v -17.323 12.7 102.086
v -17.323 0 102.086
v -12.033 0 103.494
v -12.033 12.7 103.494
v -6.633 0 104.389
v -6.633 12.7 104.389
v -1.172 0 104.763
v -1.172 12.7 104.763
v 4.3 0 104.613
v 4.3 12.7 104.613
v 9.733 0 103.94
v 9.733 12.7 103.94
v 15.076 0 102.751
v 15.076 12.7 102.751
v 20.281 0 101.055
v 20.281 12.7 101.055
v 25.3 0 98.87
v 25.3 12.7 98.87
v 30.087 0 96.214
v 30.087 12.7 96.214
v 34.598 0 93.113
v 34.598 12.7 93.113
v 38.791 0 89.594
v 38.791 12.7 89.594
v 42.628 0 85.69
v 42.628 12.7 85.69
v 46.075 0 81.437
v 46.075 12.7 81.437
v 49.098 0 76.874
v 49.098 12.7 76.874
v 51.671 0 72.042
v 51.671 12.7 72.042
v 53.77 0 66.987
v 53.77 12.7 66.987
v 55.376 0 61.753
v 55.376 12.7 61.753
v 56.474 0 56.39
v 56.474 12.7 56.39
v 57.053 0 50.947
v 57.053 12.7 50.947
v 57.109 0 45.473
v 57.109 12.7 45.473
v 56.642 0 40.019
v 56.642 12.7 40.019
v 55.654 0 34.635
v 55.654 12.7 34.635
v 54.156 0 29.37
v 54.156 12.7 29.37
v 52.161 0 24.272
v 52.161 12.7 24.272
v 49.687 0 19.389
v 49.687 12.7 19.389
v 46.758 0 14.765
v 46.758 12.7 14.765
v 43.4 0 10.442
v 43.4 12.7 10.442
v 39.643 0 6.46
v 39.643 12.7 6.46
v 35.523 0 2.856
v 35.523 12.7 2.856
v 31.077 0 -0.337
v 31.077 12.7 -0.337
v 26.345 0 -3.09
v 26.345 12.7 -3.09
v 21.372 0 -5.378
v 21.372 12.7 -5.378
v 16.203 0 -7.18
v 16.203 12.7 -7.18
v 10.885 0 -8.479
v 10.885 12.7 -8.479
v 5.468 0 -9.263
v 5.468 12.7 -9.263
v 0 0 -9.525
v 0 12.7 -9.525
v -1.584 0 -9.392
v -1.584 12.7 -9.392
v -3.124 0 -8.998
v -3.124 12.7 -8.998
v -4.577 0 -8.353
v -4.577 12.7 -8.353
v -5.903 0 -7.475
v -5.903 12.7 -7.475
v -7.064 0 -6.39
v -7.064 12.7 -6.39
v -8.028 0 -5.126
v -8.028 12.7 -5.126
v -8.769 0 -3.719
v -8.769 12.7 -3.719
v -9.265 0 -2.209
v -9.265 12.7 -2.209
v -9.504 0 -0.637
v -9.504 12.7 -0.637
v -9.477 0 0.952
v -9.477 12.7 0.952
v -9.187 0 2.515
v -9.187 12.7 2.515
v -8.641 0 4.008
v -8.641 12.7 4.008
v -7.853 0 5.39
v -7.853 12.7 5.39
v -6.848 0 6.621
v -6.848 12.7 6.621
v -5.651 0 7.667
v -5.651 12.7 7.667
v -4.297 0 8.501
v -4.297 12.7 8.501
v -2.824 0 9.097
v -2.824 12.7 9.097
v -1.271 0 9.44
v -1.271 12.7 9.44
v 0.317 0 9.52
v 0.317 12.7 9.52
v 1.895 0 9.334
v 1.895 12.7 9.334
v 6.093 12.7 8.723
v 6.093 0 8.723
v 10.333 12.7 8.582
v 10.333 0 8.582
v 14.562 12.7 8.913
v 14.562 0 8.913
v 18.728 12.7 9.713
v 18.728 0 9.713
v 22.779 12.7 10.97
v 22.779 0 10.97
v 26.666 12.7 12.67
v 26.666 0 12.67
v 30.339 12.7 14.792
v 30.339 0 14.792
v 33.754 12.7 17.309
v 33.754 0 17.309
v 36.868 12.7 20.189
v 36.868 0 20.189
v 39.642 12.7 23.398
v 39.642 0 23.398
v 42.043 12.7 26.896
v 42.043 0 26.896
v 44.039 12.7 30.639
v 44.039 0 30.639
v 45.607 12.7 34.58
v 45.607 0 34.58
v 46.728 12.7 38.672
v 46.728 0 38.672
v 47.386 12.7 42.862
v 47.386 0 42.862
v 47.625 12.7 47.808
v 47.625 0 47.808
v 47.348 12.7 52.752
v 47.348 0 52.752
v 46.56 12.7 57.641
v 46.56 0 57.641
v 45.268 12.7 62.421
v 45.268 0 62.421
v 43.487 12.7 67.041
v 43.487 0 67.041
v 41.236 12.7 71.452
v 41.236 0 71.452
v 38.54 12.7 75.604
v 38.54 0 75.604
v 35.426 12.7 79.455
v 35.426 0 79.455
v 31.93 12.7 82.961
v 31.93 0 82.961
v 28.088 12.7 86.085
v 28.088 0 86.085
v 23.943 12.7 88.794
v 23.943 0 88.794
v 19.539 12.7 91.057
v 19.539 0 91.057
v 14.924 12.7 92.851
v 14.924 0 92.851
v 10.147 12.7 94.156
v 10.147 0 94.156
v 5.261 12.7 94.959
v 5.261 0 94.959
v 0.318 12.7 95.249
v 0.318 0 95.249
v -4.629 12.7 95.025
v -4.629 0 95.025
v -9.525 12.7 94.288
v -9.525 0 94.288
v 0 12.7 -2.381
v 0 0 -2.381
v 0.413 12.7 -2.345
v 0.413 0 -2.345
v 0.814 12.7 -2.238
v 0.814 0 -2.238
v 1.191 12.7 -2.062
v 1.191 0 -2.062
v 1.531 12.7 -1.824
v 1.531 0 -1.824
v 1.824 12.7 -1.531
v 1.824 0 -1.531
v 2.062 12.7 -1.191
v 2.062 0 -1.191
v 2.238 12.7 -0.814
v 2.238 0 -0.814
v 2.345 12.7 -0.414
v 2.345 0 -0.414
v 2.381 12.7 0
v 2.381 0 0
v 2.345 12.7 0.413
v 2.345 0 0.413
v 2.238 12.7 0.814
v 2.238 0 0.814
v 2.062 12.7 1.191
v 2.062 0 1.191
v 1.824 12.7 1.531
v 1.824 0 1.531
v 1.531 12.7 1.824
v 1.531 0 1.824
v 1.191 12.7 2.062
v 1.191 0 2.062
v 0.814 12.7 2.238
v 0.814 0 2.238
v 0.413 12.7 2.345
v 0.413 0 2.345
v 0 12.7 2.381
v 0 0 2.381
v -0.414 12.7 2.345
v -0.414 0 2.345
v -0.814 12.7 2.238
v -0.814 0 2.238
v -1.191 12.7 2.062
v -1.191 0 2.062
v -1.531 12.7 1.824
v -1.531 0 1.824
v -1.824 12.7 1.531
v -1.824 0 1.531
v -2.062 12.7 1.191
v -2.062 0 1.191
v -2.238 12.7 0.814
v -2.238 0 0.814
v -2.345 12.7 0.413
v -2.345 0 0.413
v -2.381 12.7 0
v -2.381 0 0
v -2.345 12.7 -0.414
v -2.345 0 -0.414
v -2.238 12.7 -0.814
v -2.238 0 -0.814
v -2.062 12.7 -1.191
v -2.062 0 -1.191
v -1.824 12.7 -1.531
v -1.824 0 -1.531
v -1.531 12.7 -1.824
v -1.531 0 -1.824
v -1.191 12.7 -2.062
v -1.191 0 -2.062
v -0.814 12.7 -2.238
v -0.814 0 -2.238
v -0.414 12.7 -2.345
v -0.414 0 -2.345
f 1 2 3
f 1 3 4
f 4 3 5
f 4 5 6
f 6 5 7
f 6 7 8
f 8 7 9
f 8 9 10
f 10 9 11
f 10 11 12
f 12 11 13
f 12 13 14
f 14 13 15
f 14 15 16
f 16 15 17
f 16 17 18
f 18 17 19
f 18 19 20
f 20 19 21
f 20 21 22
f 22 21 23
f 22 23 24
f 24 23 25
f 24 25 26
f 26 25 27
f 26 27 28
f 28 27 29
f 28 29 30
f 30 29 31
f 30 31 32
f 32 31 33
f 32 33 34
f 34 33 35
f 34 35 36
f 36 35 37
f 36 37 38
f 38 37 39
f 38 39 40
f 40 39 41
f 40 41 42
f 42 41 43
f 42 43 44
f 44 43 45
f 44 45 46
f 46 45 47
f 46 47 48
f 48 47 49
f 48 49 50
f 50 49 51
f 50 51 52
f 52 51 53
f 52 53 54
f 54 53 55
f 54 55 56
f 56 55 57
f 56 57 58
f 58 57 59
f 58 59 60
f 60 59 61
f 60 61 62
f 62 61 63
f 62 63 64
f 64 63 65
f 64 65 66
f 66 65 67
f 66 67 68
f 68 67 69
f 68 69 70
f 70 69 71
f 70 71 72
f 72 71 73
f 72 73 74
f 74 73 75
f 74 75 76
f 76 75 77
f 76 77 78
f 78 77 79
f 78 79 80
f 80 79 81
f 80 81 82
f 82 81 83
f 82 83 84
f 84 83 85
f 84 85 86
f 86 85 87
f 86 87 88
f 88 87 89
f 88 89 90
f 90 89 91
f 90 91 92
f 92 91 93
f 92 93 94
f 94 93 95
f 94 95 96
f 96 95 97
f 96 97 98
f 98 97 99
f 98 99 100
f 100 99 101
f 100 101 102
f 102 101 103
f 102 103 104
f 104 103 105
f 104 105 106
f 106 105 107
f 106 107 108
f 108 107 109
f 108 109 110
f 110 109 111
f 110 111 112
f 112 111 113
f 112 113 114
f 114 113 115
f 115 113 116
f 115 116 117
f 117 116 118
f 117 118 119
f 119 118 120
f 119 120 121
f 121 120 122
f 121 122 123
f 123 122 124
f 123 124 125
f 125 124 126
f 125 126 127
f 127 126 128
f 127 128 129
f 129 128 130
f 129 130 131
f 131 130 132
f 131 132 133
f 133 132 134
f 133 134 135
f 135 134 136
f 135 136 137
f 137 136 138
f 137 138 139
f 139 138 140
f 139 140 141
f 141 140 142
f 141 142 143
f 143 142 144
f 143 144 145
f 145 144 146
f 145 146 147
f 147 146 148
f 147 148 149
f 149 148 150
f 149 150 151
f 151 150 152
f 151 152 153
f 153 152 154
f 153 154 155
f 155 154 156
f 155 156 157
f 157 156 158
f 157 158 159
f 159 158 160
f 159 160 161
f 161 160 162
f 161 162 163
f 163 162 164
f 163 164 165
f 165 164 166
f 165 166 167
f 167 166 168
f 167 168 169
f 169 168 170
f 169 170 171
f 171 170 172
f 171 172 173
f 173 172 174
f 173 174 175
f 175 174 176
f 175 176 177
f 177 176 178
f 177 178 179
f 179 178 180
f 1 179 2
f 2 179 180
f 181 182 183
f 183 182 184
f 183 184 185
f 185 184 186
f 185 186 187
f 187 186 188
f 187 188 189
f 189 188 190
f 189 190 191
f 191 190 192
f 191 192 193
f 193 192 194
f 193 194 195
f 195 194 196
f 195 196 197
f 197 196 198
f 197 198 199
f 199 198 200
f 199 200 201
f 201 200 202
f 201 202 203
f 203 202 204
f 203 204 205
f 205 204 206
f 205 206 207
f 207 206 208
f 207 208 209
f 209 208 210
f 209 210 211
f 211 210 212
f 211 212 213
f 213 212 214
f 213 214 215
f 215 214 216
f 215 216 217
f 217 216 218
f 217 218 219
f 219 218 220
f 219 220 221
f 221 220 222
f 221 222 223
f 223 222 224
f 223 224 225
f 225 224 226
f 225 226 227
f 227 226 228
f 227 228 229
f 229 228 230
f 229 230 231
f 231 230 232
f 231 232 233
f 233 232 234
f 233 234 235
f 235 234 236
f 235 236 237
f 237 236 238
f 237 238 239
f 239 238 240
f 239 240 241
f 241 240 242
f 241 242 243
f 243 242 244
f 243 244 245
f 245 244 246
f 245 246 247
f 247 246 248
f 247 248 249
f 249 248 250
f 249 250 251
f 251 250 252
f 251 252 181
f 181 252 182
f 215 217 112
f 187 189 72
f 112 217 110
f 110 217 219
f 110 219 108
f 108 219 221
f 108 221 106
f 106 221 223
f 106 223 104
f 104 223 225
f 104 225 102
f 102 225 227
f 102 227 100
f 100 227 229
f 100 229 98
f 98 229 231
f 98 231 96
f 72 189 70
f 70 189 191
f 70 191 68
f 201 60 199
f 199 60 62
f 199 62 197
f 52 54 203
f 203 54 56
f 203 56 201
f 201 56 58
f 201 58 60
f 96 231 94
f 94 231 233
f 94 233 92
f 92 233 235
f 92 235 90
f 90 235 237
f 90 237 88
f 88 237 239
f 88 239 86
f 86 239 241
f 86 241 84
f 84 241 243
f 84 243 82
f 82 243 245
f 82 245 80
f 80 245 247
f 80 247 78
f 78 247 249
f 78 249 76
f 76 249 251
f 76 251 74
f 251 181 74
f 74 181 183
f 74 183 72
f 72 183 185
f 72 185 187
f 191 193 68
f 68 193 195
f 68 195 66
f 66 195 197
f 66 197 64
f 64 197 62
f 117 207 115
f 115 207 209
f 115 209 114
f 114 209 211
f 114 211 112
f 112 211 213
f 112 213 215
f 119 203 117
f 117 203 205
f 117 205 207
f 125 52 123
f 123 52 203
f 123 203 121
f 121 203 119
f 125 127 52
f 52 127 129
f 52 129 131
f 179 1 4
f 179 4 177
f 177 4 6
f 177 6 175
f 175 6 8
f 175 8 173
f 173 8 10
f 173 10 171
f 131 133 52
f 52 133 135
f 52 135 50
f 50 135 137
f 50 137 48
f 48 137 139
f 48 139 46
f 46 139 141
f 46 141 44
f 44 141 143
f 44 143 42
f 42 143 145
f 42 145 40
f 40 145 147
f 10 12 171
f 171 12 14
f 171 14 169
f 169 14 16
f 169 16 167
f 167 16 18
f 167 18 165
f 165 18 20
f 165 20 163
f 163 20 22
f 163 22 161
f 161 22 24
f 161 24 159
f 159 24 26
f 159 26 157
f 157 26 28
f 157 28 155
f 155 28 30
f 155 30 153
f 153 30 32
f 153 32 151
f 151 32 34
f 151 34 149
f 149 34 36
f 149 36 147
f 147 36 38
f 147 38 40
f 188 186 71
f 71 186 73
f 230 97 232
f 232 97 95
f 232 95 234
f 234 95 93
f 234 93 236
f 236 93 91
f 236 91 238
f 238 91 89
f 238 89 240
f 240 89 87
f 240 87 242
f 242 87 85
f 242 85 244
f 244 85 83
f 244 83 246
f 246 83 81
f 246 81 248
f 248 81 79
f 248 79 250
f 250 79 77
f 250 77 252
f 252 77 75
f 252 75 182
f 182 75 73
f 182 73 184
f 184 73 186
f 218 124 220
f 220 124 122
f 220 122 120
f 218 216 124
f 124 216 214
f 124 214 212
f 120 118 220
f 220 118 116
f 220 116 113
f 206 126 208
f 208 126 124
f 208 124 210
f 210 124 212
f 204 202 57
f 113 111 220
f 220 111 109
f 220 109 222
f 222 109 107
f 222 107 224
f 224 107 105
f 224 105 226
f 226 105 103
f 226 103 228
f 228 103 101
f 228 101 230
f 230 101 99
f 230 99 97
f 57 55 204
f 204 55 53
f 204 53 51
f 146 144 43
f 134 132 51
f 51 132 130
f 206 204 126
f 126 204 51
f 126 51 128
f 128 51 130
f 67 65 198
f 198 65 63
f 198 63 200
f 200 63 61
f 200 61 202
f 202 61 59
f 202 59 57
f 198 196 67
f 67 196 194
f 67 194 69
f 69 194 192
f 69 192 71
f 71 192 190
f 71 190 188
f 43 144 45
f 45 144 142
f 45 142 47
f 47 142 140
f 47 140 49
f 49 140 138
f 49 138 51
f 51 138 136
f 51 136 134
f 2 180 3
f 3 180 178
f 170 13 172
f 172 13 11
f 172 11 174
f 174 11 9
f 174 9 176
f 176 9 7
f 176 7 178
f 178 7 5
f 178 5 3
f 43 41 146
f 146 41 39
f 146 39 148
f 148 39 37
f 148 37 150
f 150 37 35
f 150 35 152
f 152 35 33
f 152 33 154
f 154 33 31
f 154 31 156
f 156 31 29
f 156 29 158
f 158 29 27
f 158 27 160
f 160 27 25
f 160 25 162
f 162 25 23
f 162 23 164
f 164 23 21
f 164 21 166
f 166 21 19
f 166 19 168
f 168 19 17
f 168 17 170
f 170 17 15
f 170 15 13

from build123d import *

# Parameters (mm, degrees)
SKETCH1_R           = 2.38125
BOSS_EXTRUDE1_DEPTH = 12.7


with BuildPart() as part:
    # Sketch1 → Boss-Extrude1 (new body)
    with BuildSketch(Plane(origin=(0, 0, 0), x_dir=(1, 0, 0), z_dir=(0, 1, 0))):
        with BuildLine():
            Line((-17.323415526, -102.086195126), (-9.525, -94.2877796))
            ThreePointArc((-9.525, -94.2877796), (31.929749665, -82.960983237), (47.386276692, -42.8625))
            ThreePointArc((47.386276692, -42.8625), (32.081828327, -16.002591621), (1.895451068, -9.3345))
            ThreePointArc((1.895451068, -9.3345), (-9.477255338, -0.9525), (0, 9.525))
            ThreePointArc((0, 9.525), (56.473798356, -56.390420656), (-17.323415526, -102.086195126))
        make_face()
        with Locations(Location((0, 0, 0), (0, 0, 270))):
            Circle(SKETCH1_R, mode=Mode.SUBTRACT)
    extrude(amount=BOSS_EXTRUDE1_DEPTH)


solid = part.part
